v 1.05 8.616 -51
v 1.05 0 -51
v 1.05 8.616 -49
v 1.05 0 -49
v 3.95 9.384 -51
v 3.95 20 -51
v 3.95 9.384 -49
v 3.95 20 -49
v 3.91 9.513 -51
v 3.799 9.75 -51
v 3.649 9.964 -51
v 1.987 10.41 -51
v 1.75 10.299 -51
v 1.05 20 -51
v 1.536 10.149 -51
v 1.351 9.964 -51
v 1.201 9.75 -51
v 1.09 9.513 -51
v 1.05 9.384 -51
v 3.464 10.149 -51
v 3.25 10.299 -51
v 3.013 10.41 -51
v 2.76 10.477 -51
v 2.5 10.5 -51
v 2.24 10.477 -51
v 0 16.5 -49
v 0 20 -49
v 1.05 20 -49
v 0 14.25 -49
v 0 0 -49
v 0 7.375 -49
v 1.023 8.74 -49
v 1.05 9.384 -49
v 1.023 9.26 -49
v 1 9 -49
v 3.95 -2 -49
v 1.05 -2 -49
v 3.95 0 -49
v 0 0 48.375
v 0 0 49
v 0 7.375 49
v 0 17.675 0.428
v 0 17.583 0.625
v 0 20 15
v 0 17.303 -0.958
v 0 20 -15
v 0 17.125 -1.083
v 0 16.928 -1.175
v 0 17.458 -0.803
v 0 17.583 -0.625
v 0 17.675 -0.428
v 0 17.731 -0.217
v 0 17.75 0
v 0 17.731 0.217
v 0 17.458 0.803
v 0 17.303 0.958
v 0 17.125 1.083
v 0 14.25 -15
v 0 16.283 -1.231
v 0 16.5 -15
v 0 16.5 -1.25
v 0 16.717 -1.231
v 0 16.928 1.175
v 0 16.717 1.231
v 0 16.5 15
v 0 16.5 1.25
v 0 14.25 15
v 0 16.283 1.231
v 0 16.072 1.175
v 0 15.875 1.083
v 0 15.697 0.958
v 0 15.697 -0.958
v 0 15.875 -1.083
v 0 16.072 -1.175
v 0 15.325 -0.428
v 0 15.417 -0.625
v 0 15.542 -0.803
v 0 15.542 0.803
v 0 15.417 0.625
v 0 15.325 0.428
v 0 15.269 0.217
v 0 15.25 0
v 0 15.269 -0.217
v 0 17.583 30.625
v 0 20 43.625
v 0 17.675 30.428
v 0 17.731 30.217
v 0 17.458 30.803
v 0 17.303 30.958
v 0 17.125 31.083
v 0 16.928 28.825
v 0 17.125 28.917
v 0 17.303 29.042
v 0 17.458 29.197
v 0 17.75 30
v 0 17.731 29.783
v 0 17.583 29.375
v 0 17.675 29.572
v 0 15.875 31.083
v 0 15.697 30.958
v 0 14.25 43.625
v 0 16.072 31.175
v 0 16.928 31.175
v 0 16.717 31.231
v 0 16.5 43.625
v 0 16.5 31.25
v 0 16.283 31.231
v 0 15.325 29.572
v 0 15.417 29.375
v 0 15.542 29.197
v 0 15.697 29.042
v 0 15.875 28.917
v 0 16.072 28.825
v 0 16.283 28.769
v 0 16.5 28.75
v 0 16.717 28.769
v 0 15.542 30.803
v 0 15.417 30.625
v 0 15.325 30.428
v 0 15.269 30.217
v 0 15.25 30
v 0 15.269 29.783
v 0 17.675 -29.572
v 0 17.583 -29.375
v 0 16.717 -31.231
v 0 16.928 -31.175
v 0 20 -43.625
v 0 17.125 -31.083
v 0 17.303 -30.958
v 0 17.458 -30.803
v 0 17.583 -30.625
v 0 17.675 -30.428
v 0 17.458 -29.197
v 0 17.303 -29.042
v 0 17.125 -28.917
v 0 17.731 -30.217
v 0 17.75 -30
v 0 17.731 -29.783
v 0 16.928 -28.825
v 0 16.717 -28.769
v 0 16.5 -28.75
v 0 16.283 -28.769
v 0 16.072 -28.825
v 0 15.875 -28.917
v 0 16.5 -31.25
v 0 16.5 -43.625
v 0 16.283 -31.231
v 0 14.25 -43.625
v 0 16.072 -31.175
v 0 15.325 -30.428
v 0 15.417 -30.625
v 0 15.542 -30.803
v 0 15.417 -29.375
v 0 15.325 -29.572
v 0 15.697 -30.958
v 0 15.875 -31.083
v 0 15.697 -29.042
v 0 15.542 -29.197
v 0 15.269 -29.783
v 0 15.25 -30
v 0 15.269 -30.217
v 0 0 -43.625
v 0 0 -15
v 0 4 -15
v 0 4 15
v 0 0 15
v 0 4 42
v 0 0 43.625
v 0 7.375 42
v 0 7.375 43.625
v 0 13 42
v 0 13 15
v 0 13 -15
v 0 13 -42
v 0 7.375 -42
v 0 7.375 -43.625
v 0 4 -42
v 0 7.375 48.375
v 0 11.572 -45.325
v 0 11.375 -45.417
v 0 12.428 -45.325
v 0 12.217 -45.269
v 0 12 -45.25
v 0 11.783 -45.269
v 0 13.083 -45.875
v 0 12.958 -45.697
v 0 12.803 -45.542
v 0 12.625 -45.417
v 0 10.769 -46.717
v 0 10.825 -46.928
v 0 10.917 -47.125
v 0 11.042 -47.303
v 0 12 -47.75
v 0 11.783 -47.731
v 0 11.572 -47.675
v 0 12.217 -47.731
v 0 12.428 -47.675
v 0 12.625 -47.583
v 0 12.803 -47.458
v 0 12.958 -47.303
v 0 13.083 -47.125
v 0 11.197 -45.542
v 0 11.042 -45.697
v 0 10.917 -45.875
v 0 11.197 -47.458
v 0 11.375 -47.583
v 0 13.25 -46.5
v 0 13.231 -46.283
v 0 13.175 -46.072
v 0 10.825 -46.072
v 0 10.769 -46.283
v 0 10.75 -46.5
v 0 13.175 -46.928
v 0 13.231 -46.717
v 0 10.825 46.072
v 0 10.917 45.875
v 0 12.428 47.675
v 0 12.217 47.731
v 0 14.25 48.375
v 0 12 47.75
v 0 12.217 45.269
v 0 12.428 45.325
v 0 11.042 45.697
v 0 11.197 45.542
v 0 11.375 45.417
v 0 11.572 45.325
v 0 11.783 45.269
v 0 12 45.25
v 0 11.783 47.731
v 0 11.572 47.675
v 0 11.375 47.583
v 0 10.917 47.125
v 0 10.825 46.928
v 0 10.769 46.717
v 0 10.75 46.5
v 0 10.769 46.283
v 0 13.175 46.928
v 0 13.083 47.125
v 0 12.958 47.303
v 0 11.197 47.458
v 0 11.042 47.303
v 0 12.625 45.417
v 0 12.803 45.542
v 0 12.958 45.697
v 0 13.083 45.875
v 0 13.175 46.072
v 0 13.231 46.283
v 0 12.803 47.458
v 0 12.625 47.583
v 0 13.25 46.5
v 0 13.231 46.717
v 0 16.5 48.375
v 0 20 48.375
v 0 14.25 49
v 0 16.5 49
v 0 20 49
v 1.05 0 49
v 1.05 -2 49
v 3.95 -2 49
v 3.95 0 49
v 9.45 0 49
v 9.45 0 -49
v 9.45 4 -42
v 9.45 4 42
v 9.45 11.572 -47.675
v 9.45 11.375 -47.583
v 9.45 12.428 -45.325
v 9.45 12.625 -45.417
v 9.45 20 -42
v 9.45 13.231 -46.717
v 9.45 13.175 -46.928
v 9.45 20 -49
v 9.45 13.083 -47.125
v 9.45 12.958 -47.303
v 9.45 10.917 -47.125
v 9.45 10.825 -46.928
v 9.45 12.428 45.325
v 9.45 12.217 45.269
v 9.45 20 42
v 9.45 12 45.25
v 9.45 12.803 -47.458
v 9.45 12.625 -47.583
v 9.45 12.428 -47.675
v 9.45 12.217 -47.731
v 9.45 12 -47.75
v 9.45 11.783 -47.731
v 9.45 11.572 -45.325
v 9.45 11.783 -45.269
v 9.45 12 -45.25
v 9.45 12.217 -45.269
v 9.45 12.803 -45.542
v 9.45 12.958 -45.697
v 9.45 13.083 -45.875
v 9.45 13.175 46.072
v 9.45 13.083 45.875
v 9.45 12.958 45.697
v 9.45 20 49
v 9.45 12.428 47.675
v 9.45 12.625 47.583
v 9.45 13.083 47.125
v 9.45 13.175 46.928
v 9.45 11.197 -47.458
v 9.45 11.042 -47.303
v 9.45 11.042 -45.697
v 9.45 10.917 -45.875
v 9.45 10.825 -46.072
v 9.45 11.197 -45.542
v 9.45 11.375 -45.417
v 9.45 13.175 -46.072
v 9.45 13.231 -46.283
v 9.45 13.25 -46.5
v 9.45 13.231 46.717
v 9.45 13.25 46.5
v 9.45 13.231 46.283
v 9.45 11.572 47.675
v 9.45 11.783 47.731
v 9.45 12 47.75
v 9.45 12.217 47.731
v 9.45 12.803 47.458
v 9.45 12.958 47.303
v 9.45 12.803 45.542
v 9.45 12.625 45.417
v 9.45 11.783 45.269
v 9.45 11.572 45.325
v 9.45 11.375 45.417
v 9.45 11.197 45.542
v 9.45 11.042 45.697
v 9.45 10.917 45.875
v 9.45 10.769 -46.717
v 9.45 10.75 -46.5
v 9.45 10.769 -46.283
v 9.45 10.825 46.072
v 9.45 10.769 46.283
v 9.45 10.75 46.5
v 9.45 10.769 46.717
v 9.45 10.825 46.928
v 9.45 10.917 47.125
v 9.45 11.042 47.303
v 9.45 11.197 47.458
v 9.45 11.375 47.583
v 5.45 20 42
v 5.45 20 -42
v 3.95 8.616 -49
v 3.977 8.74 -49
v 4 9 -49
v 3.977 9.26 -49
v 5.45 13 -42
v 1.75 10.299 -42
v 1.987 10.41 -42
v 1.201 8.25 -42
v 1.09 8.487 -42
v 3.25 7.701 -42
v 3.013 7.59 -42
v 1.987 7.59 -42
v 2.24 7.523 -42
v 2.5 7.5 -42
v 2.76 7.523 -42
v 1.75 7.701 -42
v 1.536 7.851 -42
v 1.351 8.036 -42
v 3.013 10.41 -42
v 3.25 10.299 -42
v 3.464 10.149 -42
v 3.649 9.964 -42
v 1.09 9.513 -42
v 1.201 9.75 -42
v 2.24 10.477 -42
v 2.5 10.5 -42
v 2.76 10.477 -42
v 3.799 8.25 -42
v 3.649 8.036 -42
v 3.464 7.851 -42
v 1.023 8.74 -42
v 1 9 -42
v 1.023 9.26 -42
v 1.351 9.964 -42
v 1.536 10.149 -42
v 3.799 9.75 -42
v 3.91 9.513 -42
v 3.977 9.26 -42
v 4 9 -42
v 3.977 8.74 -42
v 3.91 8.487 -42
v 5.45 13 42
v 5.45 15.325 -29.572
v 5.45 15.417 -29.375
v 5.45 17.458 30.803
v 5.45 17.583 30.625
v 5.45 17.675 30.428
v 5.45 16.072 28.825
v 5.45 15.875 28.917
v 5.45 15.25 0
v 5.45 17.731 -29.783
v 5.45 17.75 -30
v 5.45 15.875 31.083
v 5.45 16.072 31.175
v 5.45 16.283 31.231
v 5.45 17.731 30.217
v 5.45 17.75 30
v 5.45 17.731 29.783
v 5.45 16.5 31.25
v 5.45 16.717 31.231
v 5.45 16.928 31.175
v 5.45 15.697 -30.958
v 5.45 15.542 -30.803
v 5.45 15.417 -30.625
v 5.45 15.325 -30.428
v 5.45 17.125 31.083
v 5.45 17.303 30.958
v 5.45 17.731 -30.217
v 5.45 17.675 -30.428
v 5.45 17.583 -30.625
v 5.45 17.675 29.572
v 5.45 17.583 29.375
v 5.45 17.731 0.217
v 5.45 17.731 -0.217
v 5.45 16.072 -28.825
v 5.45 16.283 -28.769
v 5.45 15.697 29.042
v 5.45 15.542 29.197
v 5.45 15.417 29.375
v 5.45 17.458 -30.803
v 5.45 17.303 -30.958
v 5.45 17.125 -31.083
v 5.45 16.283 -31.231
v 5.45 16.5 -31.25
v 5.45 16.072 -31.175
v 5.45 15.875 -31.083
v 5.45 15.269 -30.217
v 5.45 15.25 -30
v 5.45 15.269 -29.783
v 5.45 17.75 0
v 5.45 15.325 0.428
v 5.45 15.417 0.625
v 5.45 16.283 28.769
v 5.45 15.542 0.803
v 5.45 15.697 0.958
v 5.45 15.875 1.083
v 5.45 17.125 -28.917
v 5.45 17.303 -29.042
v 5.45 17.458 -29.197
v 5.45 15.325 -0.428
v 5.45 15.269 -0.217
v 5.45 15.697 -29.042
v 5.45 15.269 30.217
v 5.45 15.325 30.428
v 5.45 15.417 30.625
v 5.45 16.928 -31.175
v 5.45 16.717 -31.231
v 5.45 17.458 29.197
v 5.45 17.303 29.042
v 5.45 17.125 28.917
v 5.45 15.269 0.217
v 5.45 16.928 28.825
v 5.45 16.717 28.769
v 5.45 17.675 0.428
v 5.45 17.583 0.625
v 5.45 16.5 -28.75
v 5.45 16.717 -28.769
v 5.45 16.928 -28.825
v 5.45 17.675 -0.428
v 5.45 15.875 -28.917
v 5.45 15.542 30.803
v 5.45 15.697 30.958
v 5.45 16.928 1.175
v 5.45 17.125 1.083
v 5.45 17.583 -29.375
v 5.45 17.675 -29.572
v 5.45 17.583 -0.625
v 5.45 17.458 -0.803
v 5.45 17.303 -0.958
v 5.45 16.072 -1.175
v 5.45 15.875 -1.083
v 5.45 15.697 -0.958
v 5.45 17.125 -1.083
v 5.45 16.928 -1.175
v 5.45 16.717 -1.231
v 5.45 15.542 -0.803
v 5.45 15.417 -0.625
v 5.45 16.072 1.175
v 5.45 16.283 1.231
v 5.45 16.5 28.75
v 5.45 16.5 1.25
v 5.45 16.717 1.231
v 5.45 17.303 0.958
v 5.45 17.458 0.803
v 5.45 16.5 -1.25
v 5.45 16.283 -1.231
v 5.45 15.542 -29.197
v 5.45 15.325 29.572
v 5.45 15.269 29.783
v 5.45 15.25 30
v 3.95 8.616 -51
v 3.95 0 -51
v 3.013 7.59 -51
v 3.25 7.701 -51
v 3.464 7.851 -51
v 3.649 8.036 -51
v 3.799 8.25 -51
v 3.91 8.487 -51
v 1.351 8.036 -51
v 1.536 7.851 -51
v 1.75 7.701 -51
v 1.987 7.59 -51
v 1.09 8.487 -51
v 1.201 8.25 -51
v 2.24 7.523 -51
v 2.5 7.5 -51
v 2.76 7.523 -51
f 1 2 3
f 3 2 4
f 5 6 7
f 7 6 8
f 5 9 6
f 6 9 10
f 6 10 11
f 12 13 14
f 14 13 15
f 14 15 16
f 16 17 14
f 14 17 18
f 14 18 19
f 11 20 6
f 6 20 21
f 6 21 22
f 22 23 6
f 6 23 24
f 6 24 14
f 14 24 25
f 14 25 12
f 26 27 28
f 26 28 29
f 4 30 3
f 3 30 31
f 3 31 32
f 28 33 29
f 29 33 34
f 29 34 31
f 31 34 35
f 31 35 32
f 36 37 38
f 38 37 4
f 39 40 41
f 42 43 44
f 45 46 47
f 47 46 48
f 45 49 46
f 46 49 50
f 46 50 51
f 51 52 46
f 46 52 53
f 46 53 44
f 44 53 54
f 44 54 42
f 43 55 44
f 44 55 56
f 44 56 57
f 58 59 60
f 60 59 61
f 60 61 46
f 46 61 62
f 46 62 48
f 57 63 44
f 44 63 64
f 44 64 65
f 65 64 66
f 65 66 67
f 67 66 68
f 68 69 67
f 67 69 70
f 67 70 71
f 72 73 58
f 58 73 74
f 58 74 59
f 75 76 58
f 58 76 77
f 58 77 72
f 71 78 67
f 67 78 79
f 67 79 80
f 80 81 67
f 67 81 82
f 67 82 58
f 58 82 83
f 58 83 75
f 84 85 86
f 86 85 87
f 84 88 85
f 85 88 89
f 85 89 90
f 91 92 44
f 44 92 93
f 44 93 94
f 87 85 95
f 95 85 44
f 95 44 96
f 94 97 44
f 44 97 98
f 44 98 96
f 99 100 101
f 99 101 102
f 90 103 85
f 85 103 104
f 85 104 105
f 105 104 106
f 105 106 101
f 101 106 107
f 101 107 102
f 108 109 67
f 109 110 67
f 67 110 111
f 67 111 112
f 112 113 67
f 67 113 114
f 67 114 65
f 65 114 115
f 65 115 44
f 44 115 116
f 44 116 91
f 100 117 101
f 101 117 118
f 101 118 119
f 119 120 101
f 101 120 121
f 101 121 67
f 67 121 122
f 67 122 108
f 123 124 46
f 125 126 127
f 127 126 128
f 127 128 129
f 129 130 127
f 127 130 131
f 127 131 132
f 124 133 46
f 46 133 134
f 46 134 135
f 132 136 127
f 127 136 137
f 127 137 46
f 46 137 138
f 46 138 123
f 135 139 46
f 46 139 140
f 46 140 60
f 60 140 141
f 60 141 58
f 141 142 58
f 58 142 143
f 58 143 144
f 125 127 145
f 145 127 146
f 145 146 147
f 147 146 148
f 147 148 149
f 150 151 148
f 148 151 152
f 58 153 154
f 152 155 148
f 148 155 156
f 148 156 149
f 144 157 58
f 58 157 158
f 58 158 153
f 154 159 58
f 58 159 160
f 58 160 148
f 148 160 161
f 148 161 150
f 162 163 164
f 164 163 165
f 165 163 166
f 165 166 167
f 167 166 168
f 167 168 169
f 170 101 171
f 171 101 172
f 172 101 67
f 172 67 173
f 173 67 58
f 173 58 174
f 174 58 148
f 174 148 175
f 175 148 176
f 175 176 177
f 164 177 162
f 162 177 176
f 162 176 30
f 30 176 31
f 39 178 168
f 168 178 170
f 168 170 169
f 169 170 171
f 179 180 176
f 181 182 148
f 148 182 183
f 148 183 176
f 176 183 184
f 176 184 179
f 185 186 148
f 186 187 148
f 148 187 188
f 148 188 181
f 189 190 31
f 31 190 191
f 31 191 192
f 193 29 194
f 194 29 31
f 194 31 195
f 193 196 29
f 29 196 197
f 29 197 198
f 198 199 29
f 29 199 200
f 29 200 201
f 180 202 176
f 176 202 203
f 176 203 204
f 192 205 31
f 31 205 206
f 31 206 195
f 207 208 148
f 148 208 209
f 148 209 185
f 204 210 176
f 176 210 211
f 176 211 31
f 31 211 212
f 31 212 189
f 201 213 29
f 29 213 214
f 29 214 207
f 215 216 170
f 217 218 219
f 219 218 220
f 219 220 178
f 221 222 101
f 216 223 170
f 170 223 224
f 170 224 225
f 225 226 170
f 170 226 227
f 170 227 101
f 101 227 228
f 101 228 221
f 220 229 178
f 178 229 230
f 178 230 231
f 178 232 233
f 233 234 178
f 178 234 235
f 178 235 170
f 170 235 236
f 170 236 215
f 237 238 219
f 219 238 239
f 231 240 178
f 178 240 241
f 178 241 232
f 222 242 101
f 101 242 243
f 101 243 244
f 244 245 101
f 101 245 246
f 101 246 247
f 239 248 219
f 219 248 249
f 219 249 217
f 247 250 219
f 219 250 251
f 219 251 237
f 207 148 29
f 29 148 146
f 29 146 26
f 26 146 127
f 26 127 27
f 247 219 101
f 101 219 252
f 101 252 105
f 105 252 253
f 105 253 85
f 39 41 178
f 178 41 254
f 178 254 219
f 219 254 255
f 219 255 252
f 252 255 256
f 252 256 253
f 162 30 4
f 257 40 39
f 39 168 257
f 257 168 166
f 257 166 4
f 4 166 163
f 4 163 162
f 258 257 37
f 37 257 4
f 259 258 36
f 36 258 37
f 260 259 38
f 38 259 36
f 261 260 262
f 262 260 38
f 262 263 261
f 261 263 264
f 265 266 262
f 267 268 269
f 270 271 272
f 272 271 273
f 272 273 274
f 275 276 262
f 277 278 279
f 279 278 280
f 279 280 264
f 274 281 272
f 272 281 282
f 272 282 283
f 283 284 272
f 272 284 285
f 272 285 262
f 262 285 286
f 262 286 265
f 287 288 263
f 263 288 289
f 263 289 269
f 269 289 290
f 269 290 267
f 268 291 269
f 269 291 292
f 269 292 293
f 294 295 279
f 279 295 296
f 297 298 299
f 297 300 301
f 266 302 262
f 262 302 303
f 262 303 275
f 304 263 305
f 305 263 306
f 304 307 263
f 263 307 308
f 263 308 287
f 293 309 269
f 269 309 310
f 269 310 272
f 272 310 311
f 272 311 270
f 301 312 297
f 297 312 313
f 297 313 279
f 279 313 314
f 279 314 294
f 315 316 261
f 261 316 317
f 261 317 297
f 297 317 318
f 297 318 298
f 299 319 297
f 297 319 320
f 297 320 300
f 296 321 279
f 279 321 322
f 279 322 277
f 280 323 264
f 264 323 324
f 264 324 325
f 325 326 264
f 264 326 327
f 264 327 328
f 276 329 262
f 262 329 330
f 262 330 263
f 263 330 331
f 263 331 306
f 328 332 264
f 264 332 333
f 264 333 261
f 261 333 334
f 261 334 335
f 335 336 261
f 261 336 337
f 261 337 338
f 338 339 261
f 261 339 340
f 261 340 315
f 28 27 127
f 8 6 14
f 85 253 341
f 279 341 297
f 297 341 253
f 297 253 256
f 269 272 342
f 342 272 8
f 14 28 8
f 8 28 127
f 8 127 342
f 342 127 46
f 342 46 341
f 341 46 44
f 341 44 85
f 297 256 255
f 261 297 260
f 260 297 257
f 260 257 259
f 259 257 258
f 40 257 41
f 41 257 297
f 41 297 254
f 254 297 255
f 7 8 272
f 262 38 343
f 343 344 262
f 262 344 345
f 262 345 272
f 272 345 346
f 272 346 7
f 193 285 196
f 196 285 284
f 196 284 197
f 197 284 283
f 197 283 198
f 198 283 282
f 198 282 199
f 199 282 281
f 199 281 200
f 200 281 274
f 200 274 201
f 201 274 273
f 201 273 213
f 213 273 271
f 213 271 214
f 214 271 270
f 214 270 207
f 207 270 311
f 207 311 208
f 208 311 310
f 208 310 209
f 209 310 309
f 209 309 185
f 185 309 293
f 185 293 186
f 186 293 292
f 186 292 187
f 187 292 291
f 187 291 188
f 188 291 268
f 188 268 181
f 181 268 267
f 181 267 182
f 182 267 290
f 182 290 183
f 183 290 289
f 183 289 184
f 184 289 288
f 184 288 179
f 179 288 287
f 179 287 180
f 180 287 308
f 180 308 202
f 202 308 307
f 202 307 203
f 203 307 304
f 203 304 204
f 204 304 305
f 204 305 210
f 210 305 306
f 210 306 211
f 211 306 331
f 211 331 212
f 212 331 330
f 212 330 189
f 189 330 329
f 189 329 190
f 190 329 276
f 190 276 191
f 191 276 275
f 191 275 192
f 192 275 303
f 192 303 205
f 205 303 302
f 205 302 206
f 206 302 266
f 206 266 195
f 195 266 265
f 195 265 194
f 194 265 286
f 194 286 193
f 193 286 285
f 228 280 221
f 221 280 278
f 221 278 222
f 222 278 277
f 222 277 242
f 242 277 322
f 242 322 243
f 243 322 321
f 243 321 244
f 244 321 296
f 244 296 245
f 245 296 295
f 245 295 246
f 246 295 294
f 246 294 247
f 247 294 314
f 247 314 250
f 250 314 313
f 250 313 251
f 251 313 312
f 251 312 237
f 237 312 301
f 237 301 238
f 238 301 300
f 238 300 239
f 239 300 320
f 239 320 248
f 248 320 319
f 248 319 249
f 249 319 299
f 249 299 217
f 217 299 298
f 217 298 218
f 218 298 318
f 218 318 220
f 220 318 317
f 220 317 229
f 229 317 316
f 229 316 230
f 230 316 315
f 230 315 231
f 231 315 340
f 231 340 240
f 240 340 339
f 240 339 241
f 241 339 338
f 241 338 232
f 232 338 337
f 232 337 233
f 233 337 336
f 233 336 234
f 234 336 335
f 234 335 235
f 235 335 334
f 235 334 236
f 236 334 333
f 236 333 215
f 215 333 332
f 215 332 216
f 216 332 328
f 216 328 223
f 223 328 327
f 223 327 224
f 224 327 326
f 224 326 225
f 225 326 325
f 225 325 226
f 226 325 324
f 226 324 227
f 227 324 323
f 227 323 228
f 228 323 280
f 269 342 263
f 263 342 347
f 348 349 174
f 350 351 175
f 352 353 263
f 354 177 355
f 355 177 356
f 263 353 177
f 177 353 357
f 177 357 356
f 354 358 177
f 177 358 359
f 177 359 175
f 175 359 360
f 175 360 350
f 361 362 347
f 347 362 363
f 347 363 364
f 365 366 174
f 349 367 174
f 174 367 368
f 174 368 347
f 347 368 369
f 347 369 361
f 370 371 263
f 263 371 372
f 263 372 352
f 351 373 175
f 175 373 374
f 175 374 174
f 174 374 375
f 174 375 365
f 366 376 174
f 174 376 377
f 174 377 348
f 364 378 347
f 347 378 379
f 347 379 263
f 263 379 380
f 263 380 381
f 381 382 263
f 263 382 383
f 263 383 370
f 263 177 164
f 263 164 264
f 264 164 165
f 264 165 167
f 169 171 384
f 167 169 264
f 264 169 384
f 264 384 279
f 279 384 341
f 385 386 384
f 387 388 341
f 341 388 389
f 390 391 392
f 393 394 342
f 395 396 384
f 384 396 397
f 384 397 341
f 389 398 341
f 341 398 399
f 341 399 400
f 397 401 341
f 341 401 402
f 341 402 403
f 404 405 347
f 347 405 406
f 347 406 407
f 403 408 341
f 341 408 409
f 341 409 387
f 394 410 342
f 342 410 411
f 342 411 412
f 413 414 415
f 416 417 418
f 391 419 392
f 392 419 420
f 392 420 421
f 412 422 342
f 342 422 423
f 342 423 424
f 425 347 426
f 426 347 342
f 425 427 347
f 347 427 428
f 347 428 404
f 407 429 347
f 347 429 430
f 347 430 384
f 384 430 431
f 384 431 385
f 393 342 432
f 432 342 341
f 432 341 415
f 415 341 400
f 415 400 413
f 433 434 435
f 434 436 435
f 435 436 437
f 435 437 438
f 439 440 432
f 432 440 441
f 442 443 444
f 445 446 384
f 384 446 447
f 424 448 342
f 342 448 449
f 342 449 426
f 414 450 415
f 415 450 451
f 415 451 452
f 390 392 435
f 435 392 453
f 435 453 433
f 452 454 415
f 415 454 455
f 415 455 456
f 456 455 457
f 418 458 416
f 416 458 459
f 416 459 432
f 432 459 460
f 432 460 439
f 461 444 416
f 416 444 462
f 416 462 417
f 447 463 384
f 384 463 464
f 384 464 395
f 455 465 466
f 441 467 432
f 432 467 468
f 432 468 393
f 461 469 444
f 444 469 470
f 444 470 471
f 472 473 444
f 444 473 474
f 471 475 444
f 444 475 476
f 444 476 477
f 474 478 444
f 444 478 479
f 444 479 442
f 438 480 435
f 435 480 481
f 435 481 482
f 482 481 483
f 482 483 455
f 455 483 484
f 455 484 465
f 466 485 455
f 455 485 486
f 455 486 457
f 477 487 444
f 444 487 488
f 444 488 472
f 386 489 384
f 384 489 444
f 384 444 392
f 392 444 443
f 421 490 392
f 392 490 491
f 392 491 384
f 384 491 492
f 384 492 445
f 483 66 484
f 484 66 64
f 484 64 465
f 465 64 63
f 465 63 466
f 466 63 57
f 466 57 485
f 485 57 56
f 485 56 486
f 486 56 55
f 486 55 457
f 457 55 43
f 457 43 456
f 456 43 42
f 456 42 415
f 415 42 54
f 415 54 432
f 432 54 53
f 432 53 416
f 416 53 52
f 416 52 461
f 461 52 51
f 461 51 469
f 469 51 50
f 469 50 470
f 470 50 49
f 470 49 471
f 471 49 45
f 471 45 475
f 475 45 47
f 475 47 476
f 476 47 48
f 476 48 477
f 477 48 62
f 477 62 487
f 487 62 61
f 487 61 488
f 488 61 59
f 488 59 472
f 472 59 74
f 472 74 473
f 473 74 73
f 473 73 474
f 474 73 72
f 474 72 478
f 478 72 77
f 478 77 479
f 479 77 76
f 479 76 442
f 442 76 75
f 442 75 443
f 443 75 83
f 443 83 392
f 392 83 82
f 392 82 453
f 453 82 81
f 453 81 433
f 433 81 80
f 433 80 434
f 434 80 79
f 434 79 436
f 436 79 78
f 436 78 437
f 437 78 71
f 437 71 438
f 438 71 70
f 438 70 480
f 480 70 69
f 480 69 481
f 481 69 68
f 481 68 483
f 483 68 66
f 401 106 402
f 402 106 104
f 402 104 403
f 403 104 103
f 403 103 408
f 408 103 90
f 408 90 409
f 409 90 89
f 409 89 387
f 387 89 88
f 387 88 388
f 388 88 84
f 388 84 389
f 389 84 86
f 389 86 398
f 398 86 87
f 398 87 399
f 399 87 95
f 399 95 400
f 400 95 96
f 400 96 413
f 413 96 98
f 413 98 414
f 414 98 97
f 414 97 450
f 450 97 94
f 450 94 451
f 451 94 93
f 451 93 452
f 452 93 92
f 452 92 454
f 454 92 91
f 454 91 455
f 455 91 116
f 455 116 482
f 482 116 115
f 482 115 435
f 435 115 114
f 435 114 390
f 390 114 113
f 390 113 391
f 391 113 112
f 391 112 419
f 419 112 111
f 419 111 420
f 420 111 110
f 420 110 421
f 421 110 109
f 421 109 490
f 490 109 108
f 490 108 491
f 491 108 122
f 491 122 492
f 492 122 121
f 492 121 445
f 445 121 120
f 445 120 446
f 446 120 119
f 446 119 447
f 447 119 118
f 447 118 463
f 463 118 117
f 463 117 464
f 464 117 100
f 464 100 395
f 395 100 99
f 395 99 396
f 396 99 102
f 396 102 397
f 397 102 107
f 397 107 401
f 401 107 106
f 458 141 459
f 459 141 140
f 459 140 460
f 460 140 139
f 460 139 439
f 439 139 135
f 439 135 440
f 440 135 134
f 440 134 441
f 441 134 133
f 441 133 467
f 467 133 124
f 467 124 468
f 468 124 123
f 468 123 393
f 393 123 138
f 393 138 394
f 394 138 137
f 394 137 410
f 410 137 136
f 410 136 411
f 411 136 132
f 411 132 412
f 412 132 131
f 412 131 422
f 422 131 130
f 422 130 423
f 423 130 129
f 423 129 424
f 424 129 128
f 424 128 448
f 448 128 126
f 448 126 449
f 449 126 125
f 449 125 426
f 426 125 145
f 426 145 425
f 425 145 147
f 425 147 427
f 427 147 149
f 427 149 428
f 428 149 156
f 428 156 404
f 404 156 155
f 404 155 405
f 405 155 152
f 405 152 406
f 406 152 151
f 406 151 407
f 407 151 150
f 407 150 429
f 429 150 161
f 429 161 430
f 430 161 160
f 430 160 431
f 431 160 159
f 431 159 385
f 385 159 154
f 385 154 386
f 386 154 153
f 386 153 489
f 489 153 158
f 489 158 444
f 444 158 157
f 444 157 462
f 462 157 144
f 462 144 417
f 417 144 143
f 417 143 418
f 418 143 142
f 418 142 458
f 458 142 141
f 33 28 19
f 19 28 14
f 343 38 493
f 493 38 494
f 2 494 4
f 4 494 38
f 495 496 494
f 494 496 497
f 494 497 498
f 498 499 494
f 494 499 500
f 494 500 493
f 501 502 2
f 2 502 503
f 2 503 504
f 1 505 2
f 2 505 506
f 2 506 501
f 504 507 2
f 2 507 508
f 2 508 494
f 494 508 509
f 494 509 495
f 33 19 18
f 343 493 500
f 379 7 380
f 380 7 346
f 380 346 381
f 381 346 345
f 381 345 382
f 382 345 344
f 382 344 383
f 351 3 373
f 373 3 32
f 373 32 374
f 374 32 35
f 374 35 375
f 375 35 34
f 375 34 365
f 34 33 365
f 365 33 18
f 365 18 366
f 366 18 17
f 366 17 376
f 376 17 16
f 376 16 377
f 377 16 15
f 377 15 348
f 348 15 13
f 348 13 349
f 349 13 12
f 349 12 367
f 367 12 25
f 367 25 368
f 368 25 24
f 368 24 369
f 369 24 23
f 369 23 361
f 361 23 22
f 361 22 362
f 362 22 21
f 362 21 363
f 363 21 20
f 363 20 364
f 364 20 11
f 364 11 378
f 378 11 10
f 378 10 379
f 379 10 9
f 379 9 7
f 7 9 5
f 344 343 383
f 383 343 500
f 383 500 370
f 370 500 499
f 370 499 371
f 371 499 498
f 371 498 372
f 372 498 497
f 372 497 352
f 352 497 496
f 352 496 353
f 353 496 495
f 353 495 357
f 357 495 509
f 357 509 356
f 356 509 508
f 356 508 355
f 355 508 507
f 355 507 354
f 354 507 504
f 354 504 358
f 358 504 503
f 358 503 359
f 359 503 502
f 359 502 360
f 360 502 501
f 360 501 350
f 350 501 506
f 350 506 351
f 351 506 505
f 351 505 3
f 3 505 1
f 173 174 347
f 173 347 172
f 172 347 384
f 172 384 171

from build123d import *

# Parameters (mm, degrees)
MAIN_DEPTH                       = 49
ESQUISSE2_R                      = 1.25
HOLESFORLCDTOP_DEPTH             = 10.45
SKETCH1_W                        = 84
SKETCH1_H                        = 16
POWERBOARDPINHOLES_DEPTH         = 4
SKETCH2_R                        = 1.25
WINDOWFIXHOLES_DEPTH             = 10.45
SKETCH3_W                        = 2.9
SKETCH3_H                        = 20
MAKERBEAMFIX_DEPTH               = 2
SKETCH4_R                        = 1.5
FIXHOLEFORMAKERBEAM_DEPTH        = 20
SKETCH5_W                        = 84
SKETCH5_H                        = 9
HOLESTOHAVEACCESSTOFIXHOLE_DEPTH = 6.45


with BuildPart() as part:
    # Esquisse1 → Main (new body, symmetric)
    with BuildSketch(Plane.XY):
        Polygon((0, 20), (9.45, 20), (9.45, 0), (3.95, 0), (3.95, -2), (1.05, -2), (1.05, 0), (0, 0), align=None)
    extrude(amount=MAIN_DEPTH, both=True)

    # Esquisse2 → HolesForLCDTop (cut, through all)
    with BuildSketch(Plane(origin=(9.45, 0, 0), x_dir=(0, 0, -1), z_dir=(1, 0, 0))):
        with Locations((46.5, 12)):
            Circle(ESQUISSE2_R)
        with Locations((-46.5, 12)):
            Circle(ESQUISSE2_R)
    extrude(amount=-HOLESFORLCDTOP_DEPTH, mode=Mode.SUBTRACT)

    # Sketch1 → PowerBoardPinHoles (cut)
    with BuildSketch(Plane(origin=(9.45, 0, 0), x_dir=(0, 0, -1), z_dir=(1, 0, 0))):
        with Locations((0, 12)):
            Rectangle(SKETCH1_W, SKETCH1_H)
    extrude(amount=-POWERBOARDPINHOLES_DEPTH, mode=Mode.SUBTRACT)

    # Sketch2 → WindowFixHoles (cut, through all)
    with BuildSketch(Plane.ZY):
        with Locations((0, 16.5)):
            Circle(SKETCH2_R)
        with Locations((-30, 16.5)):
            Circle(SKETCH2_R)
        with Locations((30, 16.5)):
            Circle(SKETCH2_R)
    extrude(amount=-WINDOWFIXHOLES_DEPTH, mode=Mode.SUBTRACT)

    # Sketch3 → MakerBeamFix (add)
    with BuildSketch(Plane(origin=(0, 0, -49), x_dir=(-1, 0, 0), z_dir=(0, 0, -1))):
        with Locations((-2.5, 10)):
            Rectangle(SKETCH3_W, SKETCH3_H)
    extrude(amount=MAKERBEAMFIX_DEPTH)

    # Sketch4 → FixHoleForMakerBeam (cut)
    with BuildSketch(Plane(origin=(0, 0, -51), x_dir=(-1, 0, 0), z_dir=(0, 0, -1))):
        with Locations((-2.5, 9)):
            Circle(SKETCH4_R)
    extrude(amount=-FIXHOLEFORMAKERBEAM_DEPTH, mode=Mode.SUBTRACT)

    # Sketch5 → HolesToHaveAccessToFixHole (cut, through all)
    with BuildSketch(Plane(origin=(5.45, 0, 0), x_dir=(0, 0, -1), z_dir=(1, 0, 0))):
        with Locations((0, 8.5)):
            Rectangle(SKETCH5_W, SKETCH5_H)
    extrude(amount=-HOLESTOHAVEACCESSTOFIXHOLE_DEPTH, mode=Mode.SUBTRACT)


solid = part.part
